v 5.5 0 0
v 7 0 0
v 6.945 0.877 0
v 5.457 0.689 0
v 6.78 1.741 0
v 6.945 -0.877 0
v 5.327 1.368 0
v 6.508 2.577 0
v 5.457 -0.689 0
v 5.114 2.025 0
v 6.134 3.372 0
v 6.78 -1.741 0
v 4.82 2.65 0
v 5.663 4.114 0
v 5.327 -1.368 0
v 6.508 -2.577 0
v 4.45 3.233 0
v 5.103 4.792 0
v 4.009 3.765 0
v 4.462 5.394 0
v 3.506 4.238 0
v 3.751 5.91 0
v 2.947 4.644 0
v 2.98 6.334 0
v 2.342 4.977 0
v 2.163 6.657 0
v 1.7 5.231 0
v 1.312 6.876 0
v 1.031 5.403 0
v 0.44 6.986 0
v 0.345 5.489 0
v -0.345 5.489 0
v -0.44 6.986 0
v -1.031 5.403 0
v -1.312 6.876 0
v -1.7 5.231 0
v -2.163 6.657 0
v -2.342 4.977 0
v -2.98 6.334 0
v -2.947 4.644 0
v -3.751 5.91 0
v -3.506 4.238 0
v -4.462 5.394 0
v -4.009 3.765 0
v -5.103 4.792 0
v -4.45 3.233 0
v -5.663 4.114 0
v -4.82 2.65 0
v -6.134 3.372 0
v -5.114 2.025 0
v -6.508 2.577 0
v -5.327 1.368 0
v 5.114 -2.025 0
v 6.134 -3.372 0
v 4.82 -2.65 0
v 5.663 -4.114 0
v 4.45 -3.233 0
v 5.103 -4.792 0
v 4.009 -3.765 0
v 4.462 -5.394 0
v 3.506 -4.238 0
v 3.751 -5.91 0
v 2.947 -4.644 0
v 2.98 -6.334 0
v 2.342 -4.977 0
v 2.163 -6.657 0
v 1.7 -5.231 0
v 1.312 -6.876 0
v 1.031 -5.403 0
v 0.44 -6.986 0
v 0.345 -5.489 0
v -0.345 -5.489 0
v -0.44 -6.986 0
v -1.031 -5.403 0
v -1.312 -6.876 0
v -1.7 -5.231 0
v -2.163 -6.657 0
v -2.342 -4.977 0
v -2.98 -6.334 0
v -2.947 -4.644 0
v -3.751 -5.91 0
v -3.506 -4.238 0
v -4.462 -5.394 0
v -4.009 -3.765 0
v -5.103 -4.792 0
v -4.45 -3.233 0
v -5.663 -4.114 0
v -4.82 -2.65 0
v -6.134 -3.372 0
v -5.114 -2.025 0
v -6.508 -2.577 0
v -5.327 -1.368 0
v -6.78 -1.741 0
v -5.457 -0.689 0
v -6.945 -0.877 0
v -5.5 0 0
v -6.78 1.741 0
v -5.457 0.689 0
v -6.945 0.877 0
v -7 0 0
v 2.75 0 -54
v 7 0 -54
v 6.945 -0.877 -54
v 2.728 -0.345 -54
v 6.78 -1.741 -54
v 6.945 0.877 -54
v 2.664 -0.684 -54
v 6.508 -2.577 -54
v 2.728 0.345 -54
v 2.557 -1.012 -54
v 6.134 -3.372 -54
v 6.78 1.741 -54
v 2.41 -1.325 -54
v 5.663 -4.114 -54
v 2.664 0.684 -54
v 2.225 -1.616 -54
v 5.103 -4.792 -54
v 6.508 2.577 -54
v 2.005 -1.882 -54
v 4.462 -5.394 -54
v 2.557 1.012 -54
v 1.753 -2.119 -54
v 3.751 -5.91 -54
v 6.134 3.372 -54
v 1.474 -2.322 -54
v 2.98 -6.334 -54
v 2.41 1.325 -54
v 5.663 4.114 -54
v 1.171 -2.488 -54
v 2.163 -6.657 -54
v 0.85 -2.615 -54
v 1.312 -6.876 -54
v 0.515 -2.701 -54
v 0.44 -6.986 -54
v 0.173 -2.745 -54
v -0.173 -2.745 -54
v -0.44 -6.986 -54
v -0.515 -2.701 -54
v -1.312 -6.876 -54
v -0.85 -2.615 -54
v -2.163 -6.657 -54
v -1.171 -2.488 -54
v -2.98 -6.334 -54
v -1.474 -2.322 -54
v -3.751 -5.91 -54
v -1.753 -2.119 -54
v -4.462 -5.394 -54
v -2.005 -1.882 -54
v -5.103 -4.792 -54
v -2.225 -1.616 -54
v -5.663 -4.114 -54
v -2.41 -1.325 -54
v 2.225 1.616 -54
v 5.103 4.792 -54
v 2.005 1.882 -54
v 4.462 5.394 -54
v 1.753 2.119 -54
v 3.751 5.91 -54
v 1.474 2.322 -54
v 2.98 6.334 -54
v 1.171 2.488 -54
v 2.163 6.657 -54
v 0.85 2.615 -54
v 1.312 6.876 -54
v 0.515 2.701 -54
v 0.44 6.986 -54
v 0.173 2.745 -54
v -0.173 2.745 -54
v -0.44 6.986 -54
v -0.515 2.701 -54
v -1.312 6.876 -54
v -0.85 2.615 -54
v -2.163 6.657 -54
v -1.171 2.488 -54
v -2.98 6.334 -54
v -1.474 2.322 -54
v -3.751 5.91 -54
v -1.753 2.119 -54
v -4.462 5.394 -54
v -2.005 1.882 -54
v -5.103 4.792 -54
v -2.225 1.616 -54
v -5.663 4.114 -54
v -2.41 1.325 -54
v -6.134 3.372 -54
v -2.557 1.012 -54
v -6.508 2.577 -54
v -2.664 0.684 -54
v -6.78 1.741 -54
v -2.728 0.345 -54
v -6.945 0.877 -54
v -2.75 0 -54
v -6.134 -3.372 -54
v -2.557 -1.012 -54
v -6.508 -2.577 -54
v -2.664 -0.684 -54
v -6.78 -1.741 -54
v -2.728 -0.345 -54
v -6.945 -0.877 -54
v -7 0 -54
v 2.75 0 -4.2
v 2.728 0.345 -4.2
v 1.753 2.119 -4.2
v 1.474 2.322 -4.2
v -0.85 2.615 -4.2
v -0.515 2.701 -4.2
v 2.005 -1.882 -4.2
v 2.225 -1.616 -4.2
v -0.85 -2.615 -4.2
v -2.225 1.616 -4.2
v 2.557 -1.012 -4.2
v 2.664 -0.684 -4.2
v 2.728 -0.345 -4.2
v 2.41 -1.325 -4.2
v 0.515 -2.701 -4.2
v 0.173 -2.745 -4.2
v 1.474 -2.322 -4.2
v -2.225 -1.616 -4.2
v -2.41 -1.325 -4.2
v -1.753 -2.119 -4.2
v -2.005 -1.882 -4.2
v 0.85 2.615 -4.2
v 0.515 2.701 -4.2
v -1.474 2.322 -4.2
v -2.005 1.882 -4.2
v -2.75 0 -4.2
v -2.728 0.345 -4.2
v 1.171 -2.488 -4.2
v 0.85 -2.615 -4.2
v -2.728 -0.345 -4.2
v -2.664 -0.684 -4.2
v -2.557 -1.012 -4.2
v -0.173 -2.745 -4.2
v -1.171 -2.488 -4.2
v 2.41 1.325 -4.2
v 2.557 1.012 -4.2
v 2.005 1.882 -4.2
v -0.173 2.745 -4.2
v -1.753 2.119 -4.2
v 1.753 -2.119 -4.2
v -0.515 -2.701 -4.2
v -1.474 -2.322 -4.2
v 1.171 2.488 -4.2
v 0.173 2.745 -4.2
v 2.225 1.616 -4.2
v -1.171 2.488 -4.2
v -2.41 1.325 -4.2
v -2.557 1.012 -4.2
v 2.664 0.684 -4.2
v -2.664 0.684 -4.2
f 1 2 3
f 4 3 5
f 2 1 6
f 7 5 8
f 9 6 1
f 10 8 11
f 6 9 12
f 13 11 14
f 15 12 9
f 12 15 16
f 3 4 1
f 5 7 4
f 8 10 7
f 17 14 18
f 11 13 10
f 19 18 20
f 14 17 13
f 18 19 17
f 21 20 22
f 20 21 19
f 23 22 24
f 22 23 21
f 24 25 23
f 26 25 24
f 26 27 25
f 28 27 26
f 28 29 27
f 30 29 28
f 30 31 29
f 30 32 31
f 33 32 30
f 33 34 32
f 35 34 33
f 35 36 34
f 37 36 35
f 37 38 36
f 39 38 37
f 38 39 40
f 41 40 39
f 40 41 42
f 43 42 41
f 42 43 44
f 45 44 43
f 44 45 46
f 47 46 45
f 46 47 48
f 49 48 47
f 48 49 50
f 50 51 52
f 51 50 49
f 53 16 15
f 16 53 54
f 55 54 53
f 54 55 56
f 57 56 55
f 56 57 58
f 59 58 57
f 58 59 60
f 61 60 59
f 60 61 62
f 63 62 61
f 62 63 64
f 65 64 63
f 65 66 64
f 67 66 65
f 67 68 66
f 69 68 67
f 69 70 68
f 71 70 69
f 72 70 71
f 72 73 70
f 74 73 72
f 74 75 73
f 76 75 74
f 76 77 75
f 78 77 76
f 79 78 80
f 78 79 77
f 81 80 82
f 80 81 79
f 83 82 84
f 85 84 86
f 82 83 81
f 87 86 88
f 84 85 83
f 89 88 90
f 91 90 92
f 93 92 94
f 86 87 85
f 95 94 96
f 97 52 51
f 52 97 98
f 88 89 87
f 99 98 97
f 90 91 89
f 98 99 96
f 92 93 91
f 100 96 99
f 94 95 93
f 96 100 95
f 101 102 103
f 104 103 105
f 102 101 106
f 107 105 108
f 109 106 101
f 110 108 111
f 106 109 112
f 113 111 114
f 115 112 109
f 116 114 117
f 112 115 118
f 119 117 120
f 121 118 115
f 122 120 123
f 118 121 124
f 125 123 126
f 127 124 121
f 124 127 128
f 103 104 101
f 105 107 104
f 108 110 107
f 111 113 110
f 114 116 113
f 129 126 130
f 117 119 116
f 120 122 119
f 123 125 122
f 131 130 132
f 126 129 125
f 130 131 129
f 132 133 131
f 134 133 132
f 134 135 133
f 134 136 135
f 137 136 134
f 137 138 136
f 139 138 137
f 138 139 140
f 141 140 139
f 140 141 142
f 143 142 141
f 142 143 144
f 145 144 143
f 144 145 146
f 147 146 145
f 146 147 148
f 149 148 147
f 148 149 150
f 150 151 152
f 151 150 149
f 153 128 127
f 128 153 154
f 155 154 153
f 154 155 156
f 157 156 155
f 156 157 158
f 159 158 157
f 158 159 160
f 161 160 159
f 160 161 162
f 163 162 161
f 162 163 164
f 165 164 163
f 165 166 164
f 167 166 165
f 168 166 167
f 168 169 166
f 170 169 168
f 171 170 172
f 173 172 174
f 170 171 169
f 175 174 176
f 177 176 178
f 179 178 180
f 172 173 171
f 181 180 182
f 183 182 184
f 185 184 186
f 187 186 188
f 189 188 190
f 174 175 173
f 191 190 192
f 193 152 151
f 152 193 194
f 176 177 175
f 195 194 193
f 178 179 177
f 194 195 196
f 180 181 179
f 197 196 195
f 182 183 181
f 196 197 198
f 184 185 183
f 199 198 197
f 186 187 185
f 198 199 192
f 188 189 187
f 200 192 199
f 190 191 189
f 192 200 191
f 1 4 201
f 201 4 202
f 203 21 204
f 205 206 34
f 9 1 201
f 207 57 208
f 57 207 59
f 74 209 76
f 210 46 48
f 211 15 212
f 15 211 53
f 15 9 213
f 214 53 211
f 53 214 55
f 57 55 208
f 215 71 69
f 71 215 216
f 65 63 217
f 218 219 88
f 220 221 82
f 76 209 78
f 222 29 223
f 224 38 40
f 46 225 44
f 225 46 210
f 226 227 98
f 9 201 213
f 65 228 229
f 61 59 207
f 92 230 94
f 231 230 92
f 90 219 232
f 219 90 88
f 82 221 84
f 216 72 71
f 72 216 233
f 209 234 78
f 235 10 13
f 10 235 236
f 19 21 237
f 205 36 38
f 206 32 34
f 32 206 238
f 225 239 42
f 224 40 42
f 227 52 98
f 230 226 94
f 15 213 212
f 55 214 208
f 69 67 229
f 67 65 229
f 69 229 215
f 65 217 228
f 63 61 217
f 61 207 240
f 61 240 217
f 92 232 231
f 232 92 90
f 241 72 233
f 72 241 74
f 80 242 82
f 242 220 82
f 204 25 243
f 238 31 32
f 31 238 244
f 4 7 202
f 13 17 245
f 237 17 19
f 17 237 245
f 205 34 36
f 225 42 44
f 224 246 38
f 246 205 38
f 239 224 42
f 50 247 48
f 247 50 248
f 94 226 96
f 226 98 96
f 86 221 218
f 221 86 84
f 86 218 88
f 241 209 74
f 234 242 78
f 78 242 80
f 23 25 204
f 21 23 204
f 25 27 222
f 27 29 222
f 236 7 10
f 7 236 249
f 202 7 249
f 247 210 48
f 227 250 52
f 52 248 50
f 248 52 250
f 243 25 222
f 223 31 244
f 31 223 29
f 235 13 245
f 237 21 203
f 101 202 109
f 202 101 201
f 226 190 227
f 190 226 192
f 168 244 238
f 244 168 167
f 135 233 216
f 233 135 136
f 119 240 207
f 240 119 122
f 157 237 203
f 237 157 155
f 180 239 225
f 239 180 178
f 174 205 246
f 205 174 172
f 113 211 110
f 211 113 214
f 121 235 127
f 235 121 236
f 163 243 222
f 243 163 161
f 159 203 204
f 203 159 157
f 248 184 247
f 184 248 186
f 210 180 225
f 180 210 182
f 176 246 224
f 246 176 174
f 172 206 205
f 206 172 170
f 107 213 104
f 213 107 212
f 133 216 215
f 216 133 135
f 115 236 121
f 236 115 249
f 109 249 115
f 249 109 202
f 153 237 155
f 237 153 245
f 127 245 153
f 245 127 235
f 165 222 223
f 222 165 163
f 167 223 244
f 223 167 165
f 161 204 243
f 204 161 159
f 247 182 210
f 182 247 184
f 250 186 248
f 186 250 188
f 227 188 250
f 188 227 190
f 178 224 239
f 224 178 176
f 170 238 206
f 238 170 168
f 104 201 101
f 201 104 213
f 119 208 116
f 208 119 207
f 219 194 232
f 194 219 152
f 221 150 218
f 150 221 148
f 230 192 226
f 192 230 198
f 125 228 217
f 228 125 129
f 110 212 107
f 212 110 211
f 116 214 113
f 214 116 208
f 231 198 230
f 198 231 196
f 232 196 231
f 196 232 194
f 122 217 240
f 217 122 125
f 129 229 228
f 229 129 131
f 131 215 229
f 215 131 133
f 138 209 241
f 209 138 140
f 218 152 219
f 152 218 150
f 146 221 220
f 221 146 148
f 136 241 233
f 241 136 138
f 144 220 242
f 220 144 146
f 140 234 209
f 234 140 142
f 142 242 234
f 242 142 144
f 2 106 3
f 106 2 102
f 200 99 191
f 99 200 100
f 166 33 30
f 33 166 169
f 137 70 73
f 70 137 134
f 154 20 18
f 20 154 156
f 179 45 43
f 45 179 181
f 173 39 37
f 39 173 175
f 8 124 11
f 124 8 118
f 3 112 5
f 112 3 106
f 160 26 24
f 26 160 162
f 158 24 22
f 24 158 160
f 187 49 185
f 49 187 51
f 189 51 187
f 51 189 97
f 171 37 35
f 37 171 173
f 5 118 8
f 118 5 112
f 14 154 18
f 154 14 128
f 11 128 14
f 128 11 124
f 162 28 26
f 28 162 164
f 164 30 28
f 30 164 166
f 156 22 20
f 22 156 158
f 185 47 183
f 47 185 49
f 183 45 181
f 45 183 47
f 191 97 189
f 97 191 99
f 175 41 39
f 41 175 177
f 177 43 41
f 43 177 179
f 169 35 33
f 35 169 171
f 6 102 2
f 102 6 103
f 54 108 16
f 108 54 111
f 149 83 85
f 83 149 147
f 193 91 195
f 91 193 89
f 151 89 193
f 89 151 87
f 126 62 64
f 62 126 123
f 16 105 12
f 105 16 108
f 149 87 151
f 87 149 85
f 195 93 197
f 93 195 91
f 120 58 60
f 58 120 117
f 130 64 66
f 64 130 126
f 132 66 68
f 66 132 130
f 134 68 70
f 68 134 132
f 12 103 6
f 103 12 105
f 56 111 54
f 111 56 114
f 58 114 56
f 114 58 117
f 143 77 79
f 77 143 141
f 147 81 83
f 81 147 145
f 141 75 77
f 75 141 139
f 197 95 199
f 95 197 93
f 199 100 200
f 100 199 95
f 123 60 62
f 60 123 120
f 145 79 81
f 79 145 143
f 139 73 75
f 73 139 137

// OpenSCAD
$fn = 50;


difference() {
	union() {
		translate(v = [0, 0, -54.0000000000]) {
			cylinder(h = 54, r = 7.0000000000);
		}
		cylinder(h = 0, r = 17.0000000000);
	}
	union() {
		translate(v = [0, 0, 0]) {
			rotate(a = [0, 0, 0]) {
				difference() {
					union() {
						#translate(v = [0, 0, -54.0000000000]) {
							cylinder(h = 54, r = 2.2500000000);
						}
						#translate(v = [0, 0, -4.2000000000]) {
							cylinder(h = 4.2000000000, r1 = 2.7500000000, r2 = 5.5000000000);
						}
						#translate(v = [0, 0, -54.0000000000]) {
							cylinder(h = 54, r = 2.7500000000);
						}
						#translate(v = [0, 0, -54.0000000000]) {
							cylinder(h = 54, r = 2.2500000000);
						}
					}
					union();
				}
			}
		}
	}
}
